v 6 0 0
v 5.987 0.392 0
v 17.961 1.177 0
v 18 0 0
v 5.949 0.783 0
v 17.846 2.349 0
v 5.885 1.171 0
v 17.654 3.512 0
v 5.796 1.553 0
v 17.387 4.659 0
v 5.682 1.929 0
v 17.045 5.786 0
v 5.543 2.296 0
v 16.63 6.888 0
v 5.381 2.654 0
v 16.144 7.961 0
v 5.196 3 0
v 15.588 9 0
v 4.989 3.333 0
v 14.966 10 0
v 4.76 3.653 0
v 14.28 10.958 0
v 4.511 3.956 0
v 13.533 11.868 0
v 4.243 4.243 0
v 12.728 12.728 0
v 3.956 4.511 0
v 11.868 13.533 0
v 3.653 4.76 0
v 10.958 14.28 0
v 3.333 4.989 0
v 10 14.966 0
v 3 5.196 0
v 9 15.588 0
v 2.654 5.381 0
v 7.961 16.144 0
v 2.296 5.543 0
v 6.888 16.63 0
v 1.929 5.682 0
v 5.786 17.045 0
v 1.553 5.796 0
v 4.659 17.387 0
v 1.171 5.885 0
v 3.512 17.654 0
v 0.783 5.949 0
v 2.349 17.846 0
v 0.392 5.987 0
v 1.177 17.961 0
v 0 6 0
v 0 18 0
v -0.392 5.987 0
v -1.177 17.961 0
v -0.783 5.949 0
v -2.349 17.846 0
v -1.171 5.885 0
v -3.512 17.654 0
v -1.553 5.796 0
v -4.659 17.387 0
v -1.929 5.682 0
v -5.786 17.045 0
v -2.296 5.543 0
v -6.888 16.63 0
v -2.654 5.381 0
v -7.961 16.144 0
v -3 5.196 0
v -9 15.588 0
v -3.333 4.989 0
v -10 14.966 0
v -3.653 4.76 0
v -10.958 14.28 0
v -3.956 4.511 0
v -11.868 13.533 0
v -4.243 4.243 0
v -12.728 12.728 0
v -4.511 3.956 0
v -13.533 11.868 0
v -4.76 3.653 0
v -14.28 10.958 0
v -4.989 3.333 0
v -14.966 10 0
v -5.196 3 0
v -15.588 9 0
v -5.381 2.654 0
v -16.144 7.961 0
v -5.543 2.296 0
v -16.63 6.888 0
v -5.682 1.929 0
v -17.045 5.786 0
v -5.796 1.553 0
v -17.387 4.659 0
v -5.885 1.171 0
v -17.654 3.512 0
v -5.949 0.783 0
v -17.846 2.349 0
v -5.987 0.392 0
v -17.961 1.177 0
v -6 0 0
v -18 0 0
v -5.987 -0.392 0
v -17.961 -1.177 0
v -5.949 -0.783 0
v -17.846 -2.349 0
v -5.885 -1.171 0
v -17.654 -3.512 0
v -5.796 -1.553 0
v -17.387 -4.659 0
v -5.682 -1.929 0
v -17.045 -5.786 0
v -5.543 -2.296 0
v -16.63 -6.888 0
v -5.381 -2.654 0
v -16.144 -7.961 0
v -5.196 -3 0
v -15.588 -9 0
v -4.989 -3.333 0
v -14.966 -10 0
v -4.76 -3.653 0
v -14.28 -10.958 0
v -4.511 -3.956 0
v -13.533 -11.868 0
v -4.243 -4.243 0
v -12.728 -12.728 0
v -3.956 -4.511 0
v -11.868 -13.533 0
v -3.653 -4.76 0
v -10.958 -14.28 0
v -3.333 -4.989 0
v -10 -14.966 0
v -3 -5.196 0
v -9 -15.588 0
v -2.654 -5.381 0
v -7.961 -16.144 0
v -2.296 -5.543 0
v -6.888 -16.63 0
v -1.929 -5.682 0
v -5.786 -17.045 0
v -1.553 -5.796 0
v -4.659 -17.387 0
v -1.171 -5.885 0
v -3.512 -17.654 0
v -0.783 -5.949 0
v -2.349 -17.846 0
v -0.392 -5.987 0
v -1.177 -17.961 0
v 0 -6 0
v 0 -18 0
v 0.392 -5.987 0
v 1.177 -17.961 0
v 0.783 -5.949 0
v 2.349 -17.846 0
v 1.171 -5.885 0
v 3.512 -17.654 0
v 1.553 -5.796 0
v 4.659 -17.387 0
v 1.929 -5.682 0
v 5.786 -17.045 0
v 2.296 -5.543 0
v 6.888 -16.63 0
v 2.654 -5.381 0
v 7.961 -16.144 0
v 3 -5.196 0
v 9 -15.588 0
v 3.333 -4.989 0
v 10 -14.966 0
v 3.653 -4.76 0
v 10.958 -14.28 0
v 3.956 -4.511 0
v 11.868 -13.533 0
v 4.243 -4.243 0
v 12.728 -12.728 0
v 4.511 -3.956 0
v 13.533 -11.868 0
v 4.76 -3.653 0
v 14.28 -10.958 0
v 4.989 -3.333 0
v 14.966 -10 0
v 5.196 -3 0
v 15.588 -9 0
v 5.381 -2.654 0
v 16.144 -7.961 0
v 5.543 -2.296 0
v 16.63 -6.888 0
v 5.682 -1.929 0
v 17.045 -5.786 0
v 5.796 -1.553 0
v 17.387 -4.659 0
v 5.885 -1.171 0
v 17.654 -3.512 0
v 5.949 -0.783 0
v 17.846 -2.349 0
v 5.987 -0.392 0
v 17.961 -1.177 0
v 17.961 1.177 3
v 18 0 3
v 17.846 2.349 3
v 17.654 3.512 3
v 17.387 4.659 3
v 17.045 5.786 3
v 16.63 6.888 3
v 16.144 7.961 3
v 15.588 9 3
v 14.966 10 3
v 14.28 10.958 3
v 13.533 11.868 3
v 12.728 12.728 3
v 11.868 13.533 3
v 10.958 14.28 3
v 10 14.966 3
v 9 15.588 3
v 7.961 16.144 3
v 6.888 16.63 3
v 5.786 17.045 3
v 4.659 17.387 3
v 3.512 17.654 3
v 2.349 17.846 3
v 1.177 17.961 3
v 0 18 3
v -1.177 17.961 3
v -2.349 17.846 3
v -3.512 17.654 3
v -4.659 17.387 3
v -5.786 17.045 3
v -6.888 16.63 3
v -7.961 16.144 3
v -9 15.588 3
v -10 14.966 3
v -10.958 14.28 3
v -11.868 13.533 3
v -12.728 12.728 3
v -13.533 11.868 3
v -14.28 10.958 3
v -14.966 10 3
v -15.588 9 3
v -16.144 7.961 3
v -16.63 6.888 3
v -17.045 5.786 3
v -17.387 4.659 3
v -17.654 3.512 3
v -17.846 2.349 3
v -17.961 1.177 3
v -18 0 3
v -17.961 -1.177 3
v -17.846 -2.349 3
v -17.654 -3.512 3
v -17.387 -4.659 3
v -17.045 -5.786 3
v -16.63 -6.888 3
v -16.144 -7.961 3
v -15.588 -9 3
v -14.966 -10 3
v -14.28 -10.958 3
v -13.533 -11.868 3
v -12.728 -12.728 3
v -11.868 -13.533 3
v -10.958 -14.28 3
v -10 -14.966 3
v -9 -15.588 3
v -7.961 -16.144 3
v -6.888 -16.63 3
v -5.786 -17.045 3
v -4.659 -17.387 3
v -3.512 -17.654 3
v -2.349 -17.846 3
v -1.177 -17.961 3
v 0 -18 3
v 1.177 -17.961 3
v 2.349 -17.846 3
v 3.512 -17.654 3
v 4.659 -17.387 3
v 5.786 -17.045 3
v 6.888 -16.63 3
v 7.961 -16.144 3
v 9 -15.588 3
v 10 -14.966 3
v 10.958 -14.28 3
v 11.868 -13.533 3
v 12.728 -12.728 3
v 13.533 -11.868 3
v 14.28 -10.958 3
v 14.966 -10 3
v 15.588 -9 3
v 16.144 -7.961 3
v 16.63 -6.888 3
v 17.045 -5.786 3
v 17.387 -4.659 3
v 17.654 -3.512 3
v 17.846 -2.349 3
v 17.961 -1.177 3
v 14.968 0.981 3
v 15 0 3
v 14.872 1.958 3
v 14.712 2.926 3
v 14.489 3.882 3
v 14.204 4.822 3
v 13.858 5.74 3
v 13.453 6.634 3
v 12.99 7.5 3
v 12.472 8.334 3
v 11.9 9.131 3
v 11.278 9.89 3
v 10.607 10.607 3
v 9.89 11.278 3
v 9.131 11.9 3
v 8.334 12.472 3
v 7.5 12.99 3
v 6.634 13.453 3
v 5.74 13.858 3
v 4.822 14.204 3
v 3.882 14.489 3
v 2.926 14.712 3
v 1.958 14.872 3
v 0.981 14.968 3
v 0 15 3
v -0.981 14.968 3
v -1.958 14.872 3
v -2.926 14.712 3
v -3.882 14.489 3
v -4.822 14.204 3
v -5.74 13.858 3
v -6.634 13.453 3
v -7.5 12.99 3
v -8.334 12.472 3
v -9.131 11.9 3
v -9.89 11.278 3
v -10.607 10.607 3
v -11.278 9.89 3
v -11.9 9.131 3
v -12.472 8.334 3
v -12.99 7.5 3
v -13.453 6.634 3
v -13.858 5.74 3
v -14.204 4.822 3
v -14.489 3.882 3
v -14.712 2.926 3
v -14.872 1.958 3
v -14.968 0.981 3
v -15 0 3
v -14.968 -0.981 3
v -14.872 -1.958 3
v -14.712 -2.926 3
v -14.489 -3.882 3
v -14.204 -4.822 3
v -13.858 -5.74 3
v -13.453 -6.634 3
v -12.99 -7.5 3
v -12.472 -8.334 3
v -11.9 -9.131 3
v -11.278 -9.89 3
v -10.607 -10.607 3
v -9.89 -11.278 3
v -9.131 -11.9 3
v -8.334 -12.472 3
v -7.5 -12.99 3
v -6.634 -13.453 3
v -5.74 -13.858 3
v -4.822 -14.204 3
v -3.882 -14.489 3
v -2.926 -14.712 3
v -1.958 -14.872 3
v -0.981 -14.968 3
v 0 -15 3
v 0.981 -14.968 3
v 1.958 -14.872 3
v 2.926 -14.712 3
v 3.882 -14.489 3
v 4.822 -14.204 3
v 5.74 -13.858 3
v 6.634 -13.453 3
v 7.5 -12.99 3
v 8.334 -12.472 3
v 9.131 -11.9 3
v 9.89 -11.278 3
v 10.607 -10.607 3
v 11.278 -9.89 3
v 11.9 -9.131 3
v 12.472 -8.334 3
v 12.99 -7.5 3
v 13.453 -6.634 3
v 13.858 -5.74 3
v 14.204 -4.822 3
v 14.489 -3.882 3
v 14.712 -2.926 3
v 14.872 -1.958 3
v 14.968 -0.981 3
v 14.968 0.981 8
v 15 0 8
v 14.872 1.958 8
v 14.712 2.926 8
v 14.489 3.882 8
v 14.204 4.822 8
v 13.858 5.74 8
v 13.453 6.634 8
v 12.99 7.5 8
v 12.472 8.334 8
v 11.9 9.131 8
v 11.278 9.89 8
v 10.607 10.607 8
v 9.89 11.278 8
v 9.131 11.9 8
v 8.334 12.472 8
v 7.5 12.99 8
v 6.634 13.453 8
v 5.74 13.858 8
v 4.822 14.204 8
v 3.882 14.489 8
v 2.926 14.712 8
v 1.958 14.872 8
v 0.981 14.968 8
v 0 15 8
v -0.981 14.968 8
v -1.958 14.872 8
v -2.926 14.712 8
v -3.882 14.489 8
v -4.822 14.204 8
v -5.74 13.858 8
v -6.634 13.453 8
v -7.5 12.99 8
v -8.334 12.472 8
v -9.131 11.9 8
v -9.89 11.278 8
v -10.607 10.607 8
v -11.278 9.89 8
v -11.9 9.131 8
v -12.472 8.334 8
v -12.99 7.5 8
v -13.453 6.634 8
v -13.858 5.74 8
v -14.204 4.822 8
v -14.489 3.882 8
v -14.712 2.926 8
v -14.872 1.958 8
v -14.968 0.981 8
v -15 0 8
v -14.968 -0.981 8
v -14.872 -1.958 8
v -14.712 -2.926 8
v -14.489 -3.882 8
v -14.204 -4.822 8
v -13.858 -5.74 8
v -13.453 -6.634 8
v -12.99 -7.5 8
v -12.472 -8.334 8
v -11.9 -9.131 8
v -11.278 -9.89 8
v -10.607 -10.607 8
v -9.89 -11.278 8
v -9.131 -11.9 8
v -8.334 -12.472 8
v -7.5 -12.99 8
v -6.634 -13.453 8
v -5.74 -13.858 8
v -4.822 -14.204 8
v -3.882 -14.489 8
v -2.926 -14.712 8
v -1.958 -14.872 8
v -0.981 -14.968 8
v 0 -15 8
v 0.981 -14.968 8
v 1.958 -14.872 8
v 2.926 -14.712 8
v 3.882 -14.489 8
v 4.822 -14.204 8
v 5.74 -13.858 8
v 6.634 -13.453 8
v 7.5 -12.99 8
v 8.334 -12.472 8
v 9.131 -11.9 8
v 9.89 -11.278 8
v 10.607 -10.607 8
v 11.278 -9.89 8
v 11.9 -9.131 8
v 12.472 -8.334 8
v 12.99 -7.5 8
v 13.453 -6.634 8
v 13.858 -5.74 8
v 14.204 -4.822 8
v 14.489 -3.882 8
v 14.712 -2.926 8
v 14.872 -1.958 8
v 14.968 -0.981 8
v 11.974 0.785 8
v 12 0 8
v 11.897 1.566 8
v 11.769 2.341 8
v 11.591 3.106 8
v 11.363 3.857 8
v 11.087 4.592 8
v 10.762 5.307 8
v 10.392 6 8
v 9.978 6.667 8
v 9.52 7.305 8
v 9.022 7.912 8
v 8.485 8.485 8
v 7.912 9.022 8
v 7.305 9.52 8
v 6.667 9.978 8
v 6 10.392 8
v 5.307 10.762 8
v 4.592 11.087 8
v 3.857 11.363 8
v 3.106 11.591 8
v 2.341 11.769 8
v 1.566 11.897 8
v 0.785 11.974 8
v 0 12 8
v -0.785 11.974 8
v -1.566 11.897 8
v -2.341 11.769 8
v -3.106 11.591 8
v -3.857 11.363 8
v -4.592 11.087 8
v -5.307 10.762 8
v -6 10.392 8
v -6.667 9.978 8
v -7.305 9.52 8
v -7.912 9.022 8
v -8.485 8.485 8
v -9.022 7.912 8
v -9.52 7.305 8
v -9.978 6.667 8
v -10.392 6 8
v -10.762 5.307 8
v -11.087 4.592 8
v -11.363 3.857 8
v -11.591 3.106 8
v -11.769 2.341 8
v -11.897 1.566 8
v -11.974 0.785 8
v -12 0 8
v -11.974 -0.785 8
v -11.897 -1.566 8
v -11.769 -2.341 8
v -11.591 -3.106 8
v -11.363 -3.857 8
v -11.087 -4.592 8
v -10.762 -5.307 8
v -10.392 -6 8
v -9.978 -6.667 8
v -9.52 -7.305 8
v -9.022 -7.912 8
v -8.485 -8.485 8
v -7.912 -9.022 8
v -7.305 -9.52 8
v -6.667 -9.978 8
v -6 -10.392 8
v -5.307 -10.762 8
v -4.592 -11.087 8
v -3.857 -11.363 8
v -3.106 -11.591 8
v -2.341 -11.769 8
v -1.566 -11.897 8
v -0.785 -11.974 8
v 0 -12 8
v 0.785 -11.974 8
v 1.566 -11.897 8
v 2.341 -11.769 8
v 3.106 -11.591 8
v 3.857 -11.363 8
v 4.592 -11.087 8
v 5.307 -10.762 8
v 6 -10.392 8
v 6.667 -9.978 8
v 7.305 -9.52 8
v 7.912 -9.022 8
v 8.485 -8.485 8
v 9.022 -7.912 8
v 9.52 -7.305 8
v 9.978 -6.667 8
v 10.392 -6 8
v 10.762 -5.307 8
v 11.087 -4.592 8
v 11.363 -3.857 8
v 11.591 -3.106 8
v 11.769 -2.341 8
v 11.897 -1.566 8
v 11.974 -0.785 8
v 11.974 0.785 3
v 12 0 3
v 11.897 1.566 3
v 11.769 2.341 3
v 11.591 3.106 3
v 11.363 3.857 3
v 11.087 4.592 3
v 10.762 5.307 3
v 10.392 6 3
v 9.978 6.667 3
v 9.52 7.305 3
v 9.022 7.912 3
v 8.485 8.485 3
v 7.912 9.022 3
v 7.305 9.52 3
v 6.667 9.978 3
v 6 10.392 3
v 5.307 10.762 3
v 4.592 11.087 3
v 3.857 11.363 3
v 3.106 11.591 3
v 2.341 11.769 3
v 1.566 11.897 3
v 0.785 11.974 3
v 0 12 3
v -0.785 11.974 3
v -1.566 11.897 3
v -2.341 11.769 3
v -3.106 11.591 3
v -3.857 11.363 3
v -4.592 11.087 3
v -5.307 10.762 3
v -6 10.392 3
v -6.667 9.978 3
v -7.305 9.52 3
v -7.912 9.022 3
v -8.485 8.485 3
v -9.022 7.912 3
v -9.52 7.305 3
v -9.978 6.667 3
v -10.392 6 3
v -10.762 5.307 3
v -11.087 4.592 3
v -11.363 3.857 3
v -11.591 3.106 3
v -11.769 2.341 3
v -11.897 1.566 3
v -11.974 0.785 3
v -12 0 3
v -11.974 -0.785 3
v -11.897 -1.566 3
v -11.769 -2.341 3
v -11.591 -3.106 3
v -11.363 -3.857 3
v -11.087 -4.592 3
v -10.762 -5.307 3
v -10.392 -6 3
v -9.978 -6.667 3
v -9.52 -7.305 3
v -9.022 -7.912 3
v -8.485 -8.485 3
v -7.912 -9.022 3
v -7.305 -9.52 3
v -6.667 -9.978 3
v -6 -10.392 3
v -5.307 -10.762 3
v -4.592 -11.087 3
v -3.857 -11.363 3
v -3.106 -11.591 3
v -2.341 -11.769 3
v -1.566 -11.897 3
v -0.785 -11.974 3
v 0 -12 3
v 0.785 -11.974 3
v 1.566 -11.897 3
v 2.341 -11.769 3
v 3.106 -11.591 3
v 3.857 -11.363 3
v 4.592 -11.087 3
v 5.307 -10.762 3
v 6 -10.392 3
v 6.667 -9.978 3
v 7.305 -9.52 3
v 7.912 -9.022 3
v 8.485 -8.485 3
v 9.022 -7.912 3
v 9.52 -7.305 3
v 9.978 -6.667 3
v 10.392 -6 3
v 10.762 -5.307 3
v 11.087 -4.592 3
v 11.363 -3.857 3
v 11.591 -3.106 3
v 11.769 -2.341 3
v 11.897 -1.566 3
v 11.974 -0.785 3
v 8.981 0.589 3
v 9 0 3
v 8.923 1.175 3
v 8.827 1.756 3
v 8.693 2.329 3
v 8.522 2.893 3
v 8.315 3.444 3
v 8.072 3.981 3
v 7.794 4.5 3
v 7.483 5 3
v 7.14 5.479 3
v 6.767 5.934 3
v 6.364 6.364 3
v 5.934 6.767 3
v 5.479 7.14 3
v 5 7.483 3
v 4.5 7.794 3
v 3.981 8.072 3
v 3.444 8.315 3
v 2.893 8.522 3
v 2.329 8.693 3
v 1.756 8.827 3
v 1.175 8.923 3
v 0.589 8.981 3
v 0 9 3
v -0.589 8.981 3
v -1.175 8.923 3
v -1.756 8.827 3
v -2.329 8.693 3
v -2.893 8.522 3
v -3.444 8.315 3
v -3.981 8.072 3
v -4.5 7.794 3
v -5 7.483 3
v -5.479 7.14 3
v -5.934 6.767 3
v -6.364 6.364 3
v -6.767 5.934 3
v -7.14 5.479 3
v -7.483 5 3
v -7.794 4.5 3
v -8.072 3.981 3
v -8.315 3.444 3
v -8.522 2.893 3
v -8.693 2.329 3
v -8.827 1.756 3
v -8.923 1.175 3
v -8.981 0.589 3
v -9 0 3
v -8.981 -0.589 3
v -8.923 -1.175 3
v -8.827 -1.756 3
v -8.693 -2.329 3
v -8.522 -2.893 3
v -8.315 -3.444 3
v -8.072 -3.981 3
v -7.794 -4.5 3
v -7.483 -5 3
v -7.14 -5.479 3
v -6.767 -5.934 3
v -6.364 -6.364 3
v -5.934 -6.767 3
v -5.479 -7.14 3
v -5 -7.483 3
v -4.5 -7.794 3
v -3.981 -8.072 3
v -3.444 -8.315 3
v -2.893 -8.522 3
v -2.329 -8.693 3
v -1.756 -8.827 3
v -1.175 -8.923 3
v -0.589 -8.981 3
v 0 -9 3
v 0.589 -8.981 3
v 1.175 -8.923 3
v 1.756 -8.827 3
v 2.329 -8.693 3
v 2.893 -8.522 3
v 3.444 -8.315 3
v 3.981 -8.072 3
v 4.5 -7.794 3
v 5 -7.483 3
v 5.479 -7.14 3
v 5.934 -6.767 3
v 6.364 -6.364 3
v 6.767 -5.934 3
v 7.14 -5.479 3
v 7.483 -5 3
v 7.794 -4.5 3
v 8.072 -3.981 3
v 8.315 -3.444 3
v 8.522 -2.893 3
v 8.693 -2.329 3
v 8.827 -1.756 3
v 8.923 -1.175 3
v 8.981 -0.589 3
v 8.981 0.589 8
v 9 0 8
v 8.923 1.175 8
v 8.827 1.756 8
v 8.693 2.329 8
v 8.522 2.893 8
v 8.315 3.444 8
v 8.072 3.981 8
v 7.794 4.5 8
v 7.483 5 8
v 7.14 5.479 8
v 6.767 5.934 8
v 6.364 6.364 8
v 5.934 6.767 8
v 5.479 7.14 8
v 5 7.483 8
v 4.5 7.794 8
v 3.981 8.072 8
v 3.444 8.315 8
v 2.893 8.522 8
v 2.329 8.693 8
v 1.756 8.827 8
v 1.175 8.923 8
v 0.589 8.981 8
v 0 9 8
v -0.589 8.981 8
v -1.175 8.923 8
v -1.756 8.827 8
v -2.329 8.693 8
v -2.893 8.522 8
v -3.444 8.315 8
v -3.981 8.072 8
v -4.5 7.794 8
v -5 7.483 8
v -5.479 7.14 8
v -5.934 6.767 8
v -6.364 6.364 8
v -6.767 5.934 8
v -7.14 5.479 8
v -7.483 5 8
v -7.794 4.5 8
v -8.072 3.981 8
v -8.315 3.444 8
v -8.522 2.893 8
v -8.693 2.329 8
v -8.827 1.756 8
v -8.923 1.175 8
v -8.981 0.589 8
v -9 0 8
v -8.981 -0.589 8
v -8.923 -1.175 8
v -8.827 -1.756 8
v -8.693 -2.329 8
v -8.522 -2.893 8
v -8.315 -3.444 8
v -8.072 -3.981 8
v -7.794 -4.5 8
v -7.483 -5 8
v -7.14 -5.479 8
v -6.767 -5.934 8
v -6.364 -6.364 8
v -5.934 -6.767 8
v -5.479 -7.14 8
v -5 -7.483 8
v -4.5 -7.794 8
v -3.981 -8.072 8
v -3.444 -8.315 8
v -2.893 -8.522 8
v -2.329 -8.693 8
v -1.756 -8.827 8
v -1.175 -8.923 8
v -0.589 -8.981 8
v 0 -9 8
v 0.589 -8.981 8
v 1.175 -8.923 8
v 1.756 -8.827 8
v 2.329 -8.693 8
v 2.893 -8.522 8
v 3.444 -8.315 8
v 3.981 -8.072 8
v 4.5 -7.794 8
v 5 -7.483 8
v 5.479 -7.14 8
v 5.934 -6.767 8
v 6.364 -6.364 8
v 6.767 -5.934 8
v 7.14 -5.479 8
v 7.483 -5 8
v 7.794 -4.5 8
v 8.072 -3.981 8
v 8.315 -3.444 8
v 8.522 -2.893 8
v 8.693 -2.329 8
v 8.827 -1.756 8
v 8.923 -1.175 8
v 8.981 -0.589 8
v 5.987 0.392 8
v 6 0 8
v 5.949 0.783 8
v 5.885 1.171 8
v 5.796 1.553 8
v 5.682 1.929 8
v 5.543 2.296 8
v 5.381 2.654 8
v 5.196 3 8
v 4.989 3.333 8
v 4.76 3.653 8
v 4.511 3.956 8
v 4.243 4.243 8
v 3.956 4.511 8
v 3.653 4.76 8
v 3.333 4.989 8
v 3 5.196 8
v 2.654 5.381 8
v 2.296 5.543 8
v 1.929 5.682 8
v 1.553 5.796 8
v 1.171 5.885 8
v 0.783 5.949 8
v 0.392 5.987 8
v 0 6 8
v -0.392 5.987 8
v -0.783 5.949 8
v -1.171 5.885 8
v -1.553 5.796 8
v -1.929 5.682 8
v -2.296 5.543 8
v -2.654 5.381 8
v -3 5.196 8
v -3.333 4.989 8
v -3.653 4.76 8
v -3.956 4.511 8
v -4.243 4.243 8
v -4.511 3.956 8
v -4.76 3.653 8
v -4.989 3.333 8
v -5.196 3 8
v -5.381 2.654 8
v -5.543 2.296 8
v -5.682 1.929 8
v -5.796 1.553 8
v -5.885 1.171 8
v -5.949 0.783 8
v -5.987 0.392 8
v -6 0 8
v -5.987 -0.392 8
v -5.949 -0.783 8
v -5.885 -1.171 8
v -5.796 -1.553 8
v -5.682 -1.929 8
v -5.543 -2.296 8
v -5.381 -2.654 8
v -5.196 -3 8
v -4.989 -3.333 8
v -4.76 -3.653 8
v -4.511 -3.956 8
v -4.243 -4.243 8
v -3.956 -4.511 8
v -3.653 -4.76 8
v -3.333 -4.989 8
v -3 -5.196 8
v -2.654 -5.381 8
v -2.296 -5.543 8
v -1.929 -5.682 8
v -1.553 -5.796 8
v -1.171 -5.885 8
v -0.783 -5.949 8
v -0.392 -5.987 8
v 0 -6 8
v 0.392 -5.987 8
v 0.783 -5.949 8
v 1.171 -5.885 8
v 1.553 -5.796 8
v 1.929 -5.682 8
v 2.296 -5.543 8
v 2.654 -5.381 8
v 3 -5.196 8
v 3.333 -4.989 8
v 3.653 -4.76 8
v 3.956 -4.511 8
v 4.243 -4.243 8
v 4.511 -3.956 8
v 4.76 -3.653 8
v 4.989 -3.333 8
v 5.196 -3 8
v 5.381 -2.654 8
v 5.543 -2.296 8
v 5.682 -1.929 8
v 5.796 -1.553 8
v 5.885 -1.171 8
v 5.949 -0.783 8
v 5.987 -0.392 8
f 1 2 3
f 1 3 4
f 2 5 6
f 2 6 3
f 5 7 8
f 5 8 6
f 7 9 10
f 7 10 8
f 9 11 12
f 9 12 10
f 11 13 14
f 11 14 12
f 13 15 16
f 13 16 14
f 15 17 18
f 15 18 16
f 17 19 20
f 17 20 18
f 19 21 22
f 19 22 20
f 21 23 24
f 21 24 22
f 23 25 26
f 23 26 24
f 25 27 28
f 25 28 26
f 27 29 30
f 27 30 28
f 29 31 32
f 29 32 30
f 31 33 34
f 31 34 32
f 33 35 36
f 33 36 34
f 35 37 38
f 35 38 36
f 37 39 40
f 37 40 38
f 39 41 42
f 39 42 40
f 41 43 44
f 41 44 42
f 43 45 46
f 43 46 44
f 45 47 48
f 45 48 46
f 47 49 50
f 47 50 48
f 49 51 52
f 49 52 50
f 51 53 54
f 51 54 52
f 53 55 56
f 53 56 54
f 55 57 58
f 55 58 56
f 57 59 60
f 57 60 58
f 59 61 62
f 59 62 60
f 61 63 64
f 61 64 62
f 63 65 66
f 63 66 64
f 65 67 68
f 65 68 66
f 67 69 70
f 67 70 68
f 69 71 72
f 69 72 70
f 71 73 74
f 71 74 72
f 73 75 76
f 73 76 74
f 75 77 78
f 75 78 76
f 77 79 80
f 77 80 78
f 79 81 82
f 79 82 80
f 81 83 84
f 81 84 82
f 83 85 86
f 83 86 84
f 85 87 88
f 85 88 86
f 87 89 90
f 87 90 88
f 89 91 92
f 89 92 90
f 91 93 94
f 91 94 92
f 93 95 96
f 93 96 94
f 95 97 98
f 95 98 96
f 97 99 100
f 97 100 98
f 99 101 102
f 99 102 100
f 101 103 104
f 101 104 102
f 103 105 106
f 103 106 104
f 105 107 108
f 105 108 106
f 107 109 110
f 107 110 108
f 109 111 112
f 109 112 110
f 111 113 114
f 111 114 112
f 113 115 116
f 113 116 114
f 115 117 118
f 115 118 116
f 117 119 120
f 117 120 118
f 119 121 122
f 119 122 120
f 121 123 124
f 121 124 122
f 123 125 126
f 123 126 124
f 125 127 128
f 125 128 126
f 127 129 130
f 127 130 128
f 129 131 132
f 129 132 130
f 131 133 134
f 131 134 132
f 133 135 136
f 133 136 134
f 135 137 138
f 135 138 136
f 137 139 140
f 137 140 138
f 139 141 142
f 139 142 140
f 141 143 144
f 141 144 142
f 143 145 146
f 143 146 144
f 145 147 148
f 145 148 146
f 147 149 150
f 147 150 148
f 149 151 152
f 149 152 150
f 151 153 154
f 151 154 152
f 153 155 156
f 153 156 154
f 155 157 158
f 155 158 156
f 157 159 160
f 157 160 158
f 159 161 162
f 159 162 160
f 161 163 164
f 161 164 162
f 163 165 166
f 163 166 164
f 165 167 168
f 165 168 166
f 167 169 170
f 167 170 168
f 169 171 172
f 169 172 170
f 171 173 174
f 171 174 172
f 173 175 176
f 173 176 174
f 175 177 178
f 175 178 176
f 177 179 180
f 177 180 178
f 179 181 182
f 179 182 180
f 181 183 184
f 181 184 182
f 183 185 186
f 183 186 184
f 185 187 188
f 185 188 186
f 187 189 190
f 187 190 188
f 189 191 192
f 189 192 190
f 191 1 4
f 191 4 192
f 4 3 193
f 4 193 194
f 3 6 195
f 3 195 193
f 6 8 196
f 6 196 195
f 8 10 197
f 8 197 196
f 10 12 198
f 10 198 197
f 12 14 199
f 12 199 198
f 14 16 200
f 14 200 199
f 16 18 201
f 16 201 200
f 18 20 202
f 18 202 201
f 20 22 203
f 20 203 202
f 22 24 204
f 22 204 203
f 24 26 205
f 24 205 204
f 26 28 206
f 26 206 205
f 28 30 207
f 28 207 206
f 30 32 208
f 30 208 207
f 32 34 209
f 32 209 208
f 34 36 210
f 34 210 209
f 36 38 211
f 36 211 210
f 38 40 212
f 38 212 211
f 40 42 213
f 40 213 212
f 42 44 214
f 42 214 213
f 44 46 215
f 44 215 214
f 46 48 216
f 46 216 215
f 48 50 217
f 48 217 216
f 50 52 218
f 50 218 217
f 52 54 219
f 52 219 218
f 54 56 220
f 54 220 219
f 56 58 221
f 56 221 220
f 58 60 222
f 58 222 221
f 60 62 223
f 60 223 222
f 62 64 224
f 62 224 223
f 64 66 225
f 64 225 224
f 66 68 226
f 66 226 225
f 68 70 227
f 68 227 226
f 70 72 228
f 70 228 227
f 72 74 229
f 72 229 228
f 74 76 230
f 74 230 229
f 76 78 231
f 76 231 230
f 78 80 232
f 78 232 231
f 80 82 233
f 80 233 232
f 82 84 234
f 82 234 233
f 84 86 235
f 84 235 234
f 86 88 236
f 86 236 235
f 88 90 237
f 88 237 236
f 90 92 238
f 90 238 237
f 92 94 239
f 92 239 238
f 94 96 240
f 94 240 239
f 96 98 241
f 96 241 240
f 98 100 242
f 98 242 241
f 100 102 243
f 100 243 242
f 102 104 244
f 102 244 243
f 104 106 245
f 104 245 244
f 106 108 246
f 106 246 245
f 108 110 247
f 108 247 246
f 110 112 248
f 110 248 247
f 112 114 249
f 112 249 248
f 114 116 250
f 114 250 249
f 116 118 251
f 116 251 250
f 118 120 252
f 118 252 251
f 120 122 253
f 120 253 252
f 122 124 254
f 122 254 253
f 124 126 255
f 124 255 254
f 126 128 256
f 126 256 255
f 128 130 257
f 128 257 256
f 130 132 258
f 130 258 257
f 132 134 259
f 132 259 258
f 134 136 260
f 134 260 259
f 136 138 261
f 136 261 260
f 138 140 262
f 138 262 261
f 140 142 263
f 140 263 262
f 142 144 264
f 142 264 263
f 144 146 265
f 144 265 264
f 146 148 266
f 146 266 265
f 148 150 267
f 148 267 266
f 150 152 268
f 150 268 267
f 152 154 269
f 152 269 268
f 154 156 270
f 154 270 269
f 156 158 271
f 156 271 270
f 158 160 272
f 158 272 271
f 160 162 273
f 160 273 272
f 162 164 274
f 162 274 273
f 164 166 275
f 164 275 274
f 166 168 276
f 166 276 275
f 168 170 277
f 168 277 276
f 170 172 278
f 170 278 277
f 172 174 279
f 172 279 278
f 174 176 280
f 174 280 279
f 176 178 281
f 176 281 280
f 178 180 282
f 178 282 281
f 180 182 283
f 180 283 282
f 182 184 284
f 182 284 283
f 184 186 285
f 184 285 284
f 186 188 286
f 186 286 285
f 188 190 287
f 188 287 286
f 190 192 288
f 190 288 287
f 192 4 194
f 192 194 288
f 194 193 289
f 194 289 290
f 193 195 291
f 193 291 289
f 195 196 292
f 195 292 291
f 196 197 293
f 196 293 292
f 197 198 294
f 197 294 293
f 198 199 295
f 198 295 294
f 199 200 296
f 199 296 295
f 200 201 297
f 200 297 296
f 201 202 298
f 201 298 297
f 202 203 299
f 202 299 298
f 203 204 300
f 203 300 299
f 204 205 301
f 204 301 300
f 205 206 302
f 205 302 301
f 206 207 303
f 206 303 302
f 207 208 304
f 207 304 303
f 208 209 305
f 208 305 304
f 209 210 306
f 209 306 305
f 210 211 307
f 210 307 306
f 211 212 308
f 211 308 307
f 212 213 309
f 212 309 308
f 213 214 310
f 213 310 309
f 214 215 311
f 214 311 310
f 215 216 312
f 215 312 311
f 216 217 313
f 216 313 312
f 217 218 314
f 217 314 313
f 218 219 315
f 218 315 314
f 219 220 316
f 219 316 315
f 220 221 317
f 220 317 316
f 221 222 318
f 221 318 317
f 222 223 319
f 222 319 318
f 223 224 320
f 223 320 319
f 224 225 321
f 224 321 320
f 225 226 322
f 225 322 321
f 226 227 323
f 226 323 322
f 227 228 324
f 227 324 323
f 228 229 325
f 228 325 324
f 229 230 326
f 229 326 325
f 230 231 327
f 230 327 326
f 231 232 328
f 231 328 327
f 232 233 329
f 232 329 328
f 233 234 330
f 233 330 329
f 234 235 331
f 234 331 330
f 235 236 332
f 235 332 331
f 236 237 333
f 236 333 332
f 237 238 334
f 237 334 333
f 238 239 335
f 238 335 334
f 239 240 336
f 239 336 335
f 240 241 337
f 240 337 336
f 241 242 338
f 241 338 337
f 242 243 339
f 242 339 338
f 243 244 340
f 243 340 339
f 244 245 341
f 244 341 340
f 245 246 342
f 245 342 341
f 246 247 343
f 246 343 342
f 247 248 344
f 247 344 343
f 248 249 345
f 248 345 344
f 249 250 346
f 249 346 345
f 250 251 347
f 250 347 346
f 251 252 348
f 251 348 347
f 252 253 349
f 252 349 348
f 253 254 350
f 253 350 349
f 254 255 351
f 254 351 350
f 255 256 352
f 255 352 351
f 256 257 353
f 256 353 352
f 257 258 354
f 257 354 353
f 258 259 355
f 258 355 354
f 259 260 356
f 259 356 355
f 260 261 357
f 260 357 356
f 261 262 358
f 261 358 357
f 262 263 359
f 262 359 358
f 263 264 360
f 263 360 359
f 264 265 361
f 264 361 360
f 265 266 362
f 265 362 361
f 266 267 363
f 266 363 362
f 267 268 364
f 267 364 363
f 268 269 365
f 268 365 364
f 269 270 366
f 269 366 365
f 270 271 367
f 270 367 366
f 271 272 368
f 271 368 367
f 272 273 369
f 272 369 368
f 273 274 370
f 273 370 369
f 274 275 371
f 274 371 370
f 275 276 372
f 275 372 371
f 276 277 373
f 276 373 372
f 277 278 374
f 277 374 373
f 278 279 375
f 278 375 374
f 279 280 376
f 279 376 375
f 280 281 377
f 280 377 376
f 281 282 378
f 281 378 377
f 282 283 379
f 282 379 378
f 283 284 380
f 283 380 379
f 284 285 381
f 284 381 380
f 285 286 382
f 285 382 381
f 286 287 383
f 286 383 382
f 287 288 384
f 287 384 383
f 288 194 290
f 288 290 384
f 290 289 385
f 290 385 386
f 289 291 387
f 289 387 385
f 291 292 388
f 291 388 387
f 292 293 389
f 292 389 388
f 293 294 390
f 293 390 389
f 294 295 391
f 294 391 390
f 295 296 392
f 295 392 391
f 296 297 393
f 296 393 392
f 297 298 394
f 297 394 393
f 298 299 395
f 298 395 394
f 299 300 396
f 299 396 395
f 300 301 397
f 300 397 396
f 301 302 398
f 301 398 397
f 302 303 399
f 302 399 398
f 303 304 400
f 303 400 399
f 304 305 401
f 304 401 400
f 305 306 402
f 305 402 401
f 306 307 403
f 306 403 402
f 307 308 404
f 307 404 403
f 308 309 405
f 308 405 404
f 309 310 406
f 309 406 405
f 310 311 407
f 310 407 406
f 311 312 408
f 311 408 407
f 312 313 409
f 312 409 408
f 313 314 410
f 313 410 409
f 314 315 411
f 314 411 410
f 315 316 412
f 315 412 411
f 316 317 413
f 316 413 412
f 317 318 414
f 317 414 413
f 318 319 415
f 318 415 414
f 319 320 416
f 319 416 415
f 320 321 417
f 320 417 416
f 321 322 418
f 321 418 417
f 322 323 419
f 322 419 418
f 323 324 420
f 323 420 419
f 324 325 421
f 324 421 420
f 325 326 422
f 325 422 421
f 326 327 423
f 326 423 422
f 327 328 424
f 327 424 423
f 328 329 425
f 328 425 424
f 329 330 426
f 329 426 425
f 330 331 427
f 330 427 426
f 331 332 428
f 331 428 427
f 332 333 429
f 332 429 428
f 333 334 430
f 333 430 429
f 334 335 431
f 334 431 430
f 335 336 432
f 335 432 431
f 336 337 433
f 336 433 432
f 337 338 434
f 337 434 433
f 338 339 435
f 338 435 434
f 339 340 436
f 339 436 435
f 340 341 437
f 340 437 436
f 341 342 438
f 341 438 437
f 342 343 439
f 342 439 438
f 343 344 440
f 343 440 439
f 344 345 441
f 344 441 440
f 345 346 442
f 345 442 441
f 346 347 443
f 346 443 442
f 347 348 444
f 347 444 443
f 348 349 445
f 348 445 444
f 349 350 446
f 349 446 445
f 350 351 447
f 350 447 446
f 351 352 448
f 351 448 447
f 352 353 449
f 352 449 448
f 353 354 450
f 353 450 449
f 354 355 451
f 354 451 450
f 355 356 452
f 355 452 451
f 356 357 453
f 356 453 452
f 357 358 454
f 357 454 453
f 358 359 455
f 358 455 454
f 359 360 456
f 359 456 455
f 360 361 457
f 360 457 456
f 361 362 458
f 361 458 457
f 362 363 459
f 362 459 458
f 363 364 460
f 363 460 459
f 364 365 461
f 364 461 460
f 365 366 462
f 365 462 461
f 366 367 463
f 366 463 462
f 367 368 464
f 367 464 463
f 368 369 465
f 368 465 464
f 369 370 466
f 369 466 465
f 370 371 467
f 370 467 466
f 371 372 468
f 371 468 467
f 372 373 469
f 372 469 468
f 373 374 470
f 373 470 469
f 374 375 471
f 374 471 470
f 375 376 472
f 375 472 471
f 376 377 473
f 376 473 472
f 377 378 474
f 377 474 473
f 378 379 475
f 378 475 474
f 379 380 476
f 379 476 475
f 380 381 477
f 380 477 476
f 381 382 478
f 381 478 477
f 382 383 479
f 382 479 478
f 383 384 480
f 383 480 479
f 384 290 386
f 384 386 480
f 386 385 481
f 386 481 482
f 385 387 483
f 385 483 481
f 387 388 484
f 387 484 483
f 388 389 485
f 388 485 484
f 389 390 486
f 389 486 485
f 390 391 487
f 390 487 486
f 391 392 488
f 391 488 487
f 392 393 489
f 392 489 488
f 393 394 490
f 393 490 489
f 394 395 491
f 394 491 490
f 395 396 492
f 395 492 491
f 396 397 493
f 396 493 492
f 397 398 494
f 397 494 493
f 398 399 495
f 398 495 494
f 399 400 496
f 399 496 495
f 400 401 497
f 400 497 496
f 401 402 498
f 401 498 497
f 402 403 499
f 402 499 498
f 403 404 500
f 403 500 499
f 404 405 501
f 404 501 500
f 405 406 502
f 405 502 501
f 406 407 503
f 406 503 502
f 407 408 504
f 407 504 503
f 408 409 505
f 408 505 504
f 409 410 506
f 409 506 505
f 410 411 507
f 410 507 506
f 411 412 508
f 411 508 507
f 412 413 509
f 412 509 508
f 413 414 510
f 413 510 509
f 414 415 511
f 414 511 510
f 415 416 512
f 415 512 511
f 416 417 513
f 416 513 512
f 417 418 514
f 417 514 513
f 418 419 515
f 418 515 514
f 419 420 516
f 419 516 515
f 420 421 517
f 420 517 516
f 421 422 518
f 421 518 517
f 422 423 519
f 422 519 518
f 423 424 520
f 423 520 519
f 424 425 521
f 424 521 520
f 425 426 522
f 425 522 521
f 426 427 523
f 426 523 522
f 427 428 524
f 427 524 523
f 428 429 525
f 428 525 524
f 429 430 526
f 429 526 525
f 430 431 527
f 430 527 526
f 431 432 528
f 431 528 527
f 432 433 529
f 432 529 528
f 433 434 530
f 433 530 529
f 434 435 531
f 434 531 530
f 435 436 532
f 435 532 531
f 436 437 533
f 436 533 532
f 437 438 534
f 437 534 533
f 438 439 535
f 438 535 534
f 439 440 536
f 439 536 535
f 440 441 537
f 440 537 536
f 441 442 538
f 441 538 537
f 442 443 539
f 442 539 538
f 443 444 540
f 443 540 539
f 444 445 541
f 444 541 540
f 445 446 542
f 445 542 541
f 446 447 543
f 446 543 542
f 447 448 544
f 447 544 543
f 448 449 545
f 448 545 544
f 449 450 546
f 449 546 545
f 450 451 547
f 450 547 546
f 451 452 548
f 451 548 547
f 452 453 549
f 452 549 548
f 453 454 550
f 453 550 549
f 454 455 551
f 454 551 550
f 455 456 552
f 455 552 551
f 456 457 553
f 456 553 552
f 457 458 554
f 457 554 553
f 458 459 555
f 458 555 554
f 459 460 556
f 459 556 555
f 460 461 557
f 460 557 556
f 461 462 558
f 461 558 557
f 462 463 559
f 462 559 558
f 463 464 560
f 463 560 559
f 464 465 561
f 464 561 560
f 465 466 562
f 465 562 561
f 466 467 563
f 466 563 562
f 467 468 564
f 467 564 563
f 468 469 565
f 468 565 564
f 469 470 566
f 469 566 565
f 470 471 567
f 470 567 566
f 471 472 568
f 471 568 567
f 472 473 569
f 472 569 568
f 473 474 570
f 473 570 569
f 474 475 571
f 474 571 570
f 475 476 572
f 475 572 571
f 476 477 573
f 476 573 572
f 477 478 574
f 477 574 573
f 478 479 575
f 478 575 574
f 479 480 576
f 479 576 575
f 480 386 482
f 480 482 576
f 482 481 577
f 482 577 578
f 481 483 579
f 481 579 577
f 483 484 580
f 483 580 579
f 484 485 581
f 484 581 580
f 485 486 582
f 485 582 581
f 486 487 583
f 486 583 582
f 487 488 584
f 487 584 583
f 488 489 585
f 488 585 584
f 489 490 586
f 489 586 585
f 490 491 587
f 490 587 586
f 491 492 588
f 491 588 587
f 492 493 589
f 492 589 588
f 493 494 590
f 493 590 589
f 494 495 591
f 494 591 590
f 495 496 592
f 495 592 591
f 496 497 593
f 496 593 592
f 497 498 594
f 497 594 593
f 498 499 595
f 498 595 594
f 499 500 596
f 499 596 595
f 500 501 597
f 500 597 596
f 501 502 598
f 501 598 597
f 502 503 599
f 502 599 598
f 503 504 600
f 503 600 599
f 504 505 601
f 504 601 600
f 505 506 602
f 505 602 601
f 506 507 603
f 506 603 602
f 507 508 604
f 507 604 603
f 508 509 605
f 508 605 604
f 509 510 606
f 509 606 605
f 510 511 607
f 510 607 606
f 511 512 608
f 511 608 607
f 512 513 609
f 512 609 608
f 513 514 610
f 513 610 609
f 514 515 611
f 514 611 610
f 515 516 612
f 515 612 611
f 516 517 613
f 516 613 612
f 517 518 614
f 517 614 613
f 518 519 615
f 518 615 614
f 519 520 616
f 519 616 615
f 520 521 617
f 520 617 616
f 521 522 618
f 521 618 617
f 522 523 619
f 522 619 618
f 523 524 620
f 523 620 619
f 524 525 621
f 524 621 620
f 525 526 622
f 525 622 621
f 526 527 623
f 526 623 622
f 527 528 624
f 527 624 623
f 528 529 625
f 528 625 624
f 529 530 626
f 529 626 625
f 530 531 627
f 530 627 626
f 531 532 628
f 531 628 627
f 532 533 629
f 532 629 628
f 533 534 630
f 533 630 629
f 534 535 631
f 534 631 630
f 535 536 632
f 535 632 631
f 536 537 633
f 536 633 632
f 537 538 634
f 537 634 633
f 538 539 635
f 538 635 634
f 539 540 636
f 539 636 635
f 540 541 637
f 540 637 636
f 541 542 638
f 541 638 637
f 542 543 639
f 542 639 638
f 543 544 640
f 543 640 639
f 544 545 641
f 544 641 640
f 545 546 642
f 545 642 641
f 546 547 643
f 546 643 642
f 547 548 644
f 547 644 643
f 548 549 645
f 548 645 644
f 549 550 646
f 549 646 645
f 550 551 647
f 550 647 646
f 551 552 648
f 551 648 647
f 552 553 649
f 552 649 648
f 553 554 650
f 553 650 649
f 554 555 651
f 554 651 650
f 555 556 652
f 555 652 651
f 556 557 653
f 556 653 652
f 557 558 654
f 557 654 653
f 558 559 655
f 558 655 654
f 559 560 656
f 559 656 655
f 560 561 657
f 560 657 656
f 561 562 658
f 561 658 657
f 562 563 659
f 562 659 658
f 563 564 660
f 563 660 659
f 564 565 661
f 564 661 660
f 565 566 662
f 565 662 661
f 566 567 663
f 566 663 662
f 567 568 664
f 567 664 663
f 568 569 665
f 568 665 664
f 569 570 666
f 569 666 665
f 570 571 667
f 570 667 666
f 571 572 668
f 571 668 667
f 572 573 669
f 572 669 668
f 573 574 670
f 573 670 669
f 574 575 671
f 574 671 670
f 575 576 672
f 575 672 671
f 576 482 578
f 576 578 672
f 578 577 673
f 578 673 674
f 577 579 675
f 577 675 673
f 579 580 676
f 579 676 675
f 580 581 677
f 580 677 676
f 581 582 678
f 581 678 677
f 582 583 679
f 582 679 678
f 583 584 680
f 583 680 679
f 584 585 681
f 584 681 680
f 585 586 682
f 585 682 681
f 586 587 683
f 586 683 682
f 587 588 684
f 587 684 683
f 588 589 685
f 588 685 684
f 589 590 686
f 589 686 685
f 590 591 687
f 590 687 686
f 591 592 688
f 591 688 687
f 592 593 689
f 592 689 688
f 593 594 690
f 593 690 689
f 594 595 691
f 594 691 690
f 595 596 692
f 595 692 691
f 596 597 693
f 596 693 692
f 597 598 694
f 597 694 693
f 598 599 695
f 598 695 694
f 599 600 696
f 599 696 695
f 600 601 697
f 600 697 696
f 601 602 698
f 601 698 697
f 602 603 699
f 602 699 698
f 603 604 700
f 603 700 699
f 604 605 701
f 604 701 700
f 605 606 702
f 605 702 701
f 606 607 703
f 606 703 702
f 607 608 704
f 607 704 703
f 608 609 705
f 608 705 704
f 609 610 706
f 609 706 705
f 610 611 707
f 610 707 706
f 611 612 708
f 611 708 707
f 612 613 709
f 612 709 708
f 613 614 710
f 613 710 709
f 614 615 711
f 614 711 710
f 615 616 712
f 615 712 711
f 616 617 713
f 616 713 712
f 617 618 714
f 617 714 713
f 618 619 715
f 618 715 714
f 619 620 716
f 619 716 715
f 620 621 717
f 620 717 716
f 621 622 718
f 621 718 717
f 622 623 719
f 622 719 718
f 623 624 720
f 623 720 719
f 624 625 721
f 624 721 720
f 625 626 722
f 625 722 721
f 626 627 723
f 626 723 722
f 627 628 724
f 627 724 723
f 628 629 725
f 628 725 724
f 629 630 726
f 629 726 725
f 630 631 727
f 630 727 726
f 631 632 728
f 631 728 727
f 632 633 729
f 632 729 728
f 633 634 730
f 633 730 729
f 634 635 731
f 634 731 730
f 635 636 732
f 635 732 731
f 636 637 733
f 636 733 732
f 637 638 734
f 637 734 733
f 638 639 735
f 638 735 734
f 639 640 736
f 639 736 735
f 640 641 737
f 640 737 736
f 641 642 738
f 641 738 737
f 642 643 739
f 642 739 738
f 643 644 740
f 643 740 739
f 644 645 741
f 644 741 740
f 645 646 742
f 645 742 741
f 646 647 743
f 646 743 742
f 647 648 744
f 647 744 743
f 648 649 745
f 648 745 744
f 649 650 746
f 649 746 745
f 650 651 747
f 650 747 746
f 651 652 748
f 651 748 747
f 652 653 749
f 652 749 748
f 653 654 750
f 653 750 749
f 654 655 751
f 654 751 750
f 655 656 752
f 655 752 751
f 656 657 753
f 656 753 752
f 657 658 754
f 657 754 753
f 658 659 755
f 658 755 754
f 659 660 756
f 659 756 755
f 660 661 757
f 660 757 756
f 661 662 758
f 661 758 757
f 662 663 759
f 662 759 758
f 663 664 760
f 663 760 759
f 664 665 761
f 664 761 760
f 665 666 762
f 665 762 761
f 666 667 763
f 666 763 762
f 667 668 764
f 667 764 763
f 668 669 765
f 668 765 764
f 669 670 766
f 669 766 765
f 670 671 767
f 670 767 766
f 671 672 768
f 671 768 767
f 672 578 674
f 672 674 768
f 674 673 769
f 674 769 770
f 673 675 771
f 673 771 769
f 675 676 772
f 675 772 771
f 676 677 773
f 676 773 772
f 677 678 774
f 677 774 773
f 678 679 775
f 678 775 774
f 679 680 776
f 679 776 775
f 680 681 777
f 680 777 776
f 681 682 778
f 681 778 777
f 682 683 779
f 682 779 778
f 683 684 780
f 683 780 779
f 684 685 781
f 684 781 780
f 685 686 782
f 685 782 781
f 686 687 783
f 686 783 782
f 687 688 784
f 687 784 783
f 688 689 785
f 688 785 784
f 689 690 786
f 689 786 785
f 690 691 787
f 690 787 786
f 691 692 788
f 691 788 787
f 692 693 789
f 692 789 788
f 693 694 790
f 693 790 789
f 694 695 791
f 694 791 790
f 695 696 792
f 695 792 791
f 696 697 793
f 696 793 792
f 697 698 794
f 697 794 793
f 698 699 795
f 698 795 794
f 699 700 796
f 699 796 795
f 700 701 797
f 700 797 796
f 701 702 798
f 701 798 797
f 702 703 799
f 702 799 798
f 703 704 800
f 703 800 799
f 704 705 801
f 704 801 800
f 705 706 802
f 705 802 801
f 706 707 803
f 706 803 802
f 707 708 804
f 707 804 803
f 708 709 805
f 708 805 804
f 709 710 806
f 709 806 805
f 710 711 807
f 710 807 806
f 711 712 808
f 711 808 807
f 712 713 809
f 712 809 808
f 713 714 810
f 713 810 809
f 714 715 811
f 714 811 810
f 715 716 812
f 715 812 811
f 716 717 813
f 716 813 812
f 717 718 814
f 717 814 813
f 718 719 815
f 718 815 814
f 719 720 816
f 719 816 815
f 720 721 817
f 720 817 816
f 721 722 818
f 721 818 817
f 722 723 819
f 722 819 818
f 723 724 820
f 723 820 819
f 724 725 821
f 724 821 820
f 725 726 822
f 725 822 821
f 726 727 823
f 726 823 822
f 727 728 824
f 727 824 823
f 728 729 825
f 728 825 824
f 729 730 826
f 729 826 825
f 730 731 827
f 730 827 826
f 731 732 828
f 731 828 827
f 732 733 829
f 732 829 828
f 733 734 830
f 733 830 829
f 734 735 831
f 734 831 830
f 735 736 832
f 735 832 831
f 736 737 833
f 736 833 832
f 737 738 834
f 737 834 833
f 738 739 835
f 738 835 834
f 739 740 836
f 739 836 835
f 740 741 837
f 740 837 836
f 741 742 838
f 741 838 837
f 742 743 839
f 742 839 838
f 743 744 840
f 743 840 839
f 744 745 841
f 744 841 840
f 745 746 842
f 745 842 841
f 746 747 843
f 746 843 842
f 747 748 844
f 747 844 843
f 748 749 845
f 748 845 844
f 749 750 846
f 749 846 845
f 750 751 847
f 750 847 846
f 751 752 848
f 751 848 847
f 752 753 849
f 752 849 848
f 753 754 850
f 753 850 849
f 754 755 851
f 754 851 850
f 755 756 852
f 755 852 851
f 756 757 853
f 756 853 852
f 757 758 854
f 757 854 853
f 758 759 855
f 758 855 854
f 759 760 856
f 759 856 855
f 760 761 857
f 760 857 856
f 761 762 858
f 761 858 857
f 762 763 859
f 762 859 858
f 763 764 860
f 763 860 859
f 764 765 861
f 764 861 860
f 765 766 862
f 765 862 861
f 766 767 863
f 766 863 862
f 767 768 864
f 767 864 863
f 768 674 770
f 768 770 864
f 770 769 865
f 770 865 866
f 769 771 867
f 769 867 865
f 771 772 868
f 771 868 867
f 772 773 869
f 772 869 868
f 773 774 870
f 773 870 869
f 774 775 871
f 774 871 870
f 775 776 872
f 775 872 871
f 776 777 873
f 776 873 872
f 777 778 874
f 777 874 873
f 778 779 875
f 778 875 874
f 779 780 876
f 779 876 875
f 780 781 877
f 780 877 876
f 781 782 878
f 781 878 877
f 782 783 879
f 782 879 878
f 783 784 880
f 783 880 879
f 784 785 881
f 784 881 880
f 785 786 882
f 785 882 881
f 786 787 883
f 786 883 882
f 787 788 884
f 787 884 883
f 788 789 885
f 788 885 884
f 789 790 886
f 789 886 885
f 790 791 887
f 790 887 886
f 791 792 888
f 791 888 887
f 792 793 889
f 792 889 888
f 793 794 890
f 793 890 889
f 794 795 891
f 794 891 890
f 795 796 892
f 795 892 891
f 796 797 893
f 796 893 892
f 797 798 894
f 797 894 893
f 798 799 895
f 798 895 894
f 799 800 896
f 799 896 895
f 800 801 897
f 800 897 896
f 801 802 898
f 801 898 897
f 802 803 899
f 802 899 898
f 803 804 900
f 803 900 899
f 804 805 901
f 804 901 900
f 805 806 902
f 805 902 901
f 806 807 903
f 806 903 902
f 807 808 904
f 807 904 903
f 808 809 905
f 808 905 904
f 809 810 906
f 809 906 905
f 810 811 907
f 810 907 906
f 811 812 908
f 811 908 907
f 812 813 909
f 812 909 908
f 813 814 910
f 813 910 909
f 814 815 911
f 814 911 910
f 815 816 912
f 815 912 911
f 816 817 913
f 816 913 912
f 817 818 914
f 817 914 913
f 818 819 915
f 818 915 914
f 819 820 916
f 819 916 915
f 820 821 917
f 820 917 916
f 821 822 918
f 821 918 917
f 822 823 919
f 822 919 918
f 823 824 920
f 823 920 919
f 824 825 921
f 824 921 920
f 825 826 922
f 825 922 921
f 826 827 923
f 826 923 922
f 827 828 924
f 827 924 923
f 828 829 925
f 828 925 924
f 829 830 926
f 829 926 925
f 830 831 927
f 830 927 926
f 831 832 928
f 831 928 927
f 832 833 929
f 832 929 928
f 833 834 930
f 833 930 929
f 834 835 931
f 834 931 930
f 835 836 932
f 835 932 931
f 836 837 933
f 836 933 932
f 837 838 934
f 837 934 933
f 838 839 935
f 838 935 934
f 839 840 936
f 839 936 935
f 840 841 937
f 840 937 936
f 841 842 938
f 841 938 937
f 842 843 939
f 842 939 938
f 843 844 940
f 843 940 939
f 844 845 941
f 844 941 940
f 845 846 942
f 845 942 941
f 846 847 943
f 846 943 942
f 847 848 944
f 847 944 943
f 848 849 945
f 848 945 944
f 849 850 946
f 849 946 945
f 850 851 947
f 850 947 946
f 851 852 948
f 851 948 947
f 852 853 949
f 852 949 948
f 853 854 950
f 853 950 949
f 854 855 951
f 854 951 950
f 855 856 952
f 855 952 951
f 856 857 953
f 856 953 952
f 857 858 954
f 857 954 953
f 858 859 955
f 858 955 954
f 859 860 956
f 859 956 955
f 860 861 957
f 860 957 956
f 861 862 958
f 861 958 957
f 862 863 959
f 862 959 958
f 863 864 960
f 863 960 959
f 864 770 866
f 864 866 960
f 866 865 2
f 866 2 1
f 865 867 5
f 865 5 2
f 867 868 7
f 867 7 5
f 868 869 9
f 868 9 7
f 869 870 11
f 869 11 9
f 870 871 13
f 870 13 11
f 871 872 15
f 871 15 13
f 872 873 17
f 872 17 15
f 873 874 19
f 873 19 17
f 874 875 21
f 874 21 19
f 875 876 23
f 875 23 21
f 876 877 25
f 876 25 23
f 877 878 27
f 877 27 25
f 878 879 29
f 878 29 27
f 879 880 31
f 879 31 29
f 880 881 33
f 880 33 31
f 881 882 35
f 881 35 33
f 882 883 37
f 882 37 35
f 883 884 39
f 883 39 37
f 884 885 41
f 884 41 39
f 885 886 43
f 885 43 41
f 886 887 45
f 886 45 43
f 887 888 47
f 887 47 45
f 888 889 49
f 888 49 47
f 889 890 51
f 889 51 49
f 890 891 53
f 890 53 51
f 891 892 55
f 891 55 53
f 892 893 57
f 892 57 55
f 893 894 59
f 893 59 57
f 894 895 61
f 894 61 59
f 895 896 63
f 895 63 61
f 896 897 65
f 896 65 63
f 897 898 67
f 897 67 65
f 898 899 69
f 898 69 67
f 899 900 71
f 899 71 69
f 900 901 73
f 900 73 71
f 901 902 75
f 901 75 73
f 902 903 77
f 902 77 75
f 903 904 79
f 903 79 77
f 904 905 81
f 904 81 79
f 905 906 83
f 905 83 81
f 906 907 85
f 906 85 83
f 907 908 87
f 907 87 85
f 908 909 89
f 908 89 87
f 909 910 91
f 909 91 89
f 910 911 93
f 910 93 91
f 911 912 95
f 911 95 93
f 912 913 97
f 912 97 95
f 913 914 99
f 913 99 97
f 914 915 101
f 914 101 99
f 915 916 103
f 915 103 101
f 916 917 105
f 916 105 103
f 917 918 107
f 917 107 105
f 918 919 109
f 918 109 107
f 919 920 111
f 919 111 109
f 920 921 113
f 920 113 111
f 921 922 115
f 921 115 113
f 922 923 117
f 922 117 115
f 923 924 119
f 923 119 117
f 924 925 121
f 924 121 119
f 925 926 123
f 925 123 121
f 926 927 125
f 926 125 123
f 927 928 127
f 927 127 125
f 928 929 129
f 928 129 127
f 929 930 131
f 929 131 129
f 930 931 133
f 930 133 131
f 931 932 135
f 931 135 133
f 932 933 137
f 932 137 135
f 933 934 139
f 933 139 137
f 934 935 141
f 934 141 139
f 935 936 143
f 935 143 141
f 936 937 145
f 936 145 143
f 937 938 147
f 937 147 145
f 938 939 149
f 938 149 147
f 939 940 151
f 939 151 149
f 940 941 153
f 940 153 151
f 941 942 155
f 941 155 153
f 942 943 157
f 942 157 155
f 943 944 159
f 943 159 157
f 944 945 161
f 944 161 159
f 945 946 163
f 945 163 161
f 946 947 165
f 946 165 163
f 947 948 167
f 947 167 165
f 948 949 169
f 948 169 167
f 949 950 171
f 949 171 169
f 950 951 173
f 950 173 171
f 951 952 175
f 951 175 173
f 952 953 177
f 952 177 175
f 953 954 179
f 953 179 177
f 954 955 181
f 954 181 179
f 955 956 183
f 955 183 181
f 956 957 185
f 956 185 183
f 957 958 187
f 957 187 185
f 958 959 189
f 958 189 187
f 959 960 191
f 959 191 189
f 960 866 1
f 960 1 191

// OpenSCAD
// Original MechIntel educational model. CC0-1.0. Units: mm.
// Not a standardized or load-rated component.
$fn=96;
// Section points: [radius, height], mm. Edit to change the profile.
section=[[6, 0], [18, 0], [18, 3], [15, 3], [15, 8], [12, 8], [12, 3], [9, 3], [9, 8], [6, 8]];
rotate_extrude($fn=96) polygon(points=section);
